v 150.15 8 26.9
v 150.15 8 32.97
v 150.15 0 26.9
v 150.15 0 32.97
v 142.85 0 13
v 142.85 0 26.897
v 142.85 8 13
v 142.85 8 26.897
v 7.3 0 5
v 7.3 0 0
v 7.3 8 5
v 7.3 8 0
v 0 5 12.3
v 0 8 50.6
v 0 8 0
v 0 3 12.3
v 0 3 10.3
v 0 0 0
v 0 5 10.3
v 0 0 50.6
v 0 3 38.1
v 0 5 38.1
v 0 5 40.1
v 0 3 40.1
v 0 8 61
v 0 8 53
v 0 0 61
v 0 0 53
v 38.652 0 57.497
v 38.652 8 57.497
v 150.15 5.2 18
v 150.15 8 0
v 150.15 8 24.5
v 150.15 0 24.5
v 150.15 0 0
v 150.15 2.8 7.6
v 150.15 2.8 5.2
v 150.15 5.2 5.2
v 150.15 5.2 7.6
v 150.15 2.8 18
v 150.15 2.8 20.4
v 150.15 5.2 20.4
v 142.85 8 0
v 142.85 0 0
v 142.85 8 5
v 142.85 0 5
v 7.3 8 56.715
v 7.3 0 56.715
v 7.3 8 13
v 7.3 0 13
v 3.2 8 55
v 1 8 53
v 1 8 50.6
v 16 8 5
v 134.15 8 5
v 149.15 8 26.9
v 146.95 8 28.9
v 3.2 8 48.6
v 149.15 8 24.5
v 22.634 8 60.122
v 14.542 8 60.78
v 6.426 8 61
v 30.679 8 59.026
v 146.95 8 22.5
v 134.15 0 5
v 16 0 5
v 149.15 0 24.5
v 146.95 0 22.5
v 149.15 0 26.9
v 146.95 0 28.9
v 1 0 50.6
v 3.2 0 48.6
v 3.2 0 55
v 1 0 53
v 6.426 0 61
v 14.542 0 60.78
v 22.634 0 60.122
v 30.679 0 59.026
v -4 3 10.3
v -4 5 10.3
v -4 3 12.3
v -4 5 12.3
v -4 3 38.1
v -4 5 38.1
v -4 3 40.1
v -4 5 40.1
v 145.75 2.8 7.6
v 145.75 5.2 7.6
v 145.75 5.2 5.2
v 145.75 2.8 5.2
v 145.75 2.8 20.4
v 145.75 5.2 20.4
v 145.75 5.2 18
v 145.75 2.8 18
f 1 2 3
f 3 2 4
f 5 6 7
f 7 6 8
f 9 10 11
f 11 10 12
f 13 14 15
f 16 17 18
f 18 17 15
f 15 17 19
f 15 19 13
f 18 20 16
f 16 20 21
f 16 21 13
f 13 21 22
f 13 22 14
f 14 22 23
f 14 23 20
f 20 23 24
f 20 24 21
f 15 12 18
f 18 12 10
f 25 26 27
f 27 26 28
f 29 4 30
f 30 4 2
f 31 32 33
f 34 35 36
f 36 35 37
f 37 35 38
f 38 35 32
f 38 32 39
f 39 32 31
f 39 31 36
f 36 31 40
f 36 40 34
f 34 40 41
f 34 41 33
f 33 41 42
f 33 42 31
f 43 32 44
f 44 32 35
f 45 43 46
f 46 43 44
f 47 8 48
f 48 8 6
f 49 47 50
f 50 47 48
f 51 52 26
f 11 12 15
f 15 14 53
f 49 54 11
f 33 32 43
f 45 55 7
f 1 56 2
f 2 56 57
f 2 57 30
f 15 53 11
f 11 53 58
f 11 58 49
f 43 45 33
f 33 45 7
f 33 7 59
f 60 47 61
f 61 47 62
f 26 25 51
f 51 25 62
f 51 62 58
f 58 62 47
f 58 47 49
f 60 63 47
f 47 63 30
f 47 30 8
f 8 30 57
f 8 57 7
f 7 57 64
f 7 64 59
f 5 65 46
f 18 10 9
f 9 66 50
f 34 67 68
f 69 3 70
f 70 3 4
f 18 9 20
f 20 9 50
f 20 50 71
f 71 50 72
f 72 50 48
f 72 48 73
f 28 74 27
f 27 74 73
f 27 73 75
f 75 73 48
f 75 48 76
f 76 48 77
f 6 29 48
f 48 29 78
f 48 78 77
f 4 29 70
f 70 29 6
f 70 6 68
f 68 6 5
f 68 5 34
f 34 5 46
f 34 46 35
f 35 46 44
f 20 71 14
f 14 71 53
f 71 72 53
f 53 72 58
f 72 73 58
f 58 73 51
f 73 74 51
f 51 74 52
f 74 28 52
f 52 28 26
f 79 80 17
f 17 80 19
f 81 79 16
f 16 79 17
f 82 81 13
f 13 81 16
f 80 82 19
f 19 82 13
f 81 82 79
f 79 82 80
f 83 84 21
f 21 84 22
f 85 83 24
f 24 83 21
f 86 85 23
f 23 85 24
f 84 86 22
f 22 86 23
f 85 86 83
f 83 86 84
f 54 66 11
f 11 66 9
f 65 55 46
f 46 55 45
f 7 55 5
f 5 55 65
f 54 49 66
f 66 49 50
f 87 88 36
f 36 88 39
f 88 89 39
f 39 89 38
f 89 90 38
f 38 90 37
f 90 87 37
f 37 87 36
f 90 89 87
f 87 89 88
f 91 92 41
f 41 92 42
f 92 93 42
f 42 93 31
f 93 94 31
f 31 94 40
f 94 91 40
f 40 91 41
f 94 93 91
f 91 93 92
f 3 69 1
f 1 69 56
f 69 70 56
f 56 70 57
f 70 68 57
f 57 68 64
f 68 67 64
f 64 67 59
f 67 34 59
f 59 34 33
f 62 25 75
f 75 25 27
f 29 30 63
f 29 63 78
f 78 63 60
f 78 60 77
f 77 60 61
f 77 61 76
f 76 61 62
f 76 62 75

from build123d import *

# Parameters (mm, degrees)
P_IDAT_VYSUNUT_M1_DEPTH  = 8
ODEBRAT_VYSUNUT_M1_DEPTH = 165.210299616
SKICA3_W                 = 2
SKICA3_H                 = 2
P_IDAT_VYSUNUT_M2_DEPTH  = 4
SKICA5_W                 = 16
SKICA5_H                 = 8
P_IDAT_VYSUNUT_M3_DEPTH  = 8
ODEBRAT_VYSUNUT_M4_DEPTH = 165.210299616
SKICA4_W                 = 2.4
SKICA4_H                 = 2.4
ODEBRAT_VYSUNUT_M2_DEPTH = 4.4
ODEBRAT_VYSUNUT_M5_DEPTH = 165.210299616
ODEBRAT_VYSUNUT_M6_DEPTH = 165.210299616
ZAOBLIT1_R               = 150


with BuildPart() as part:
    # Skica1 → Přidat vysunutím1 (new body)
    with BuildSketch(Plane(origin=(0, 0, 0), x_dir=(1, 0, 0), z_dir=(0, 1, 0))):
        Polygon((0, 0), (0, -66), (150.15, -32.97), (150.15, 0), (142.85, 0), (142.85, -26.8965309), (7.3, -56.714822608), (7.3, 0), align=None)
    extrude(amount=P_IDAT_VYSUNUT_M1_DEPTH)

    # Skica2 → Odebrat vysunutím1 (cut, through all)
    with BuildSketch(Plane(origin=(0, 8, 0), x_dir=(1, 0, 0), z_dir=(0, 1, 0))):
        Polygon((0, -50.6), (1, -50.6), (3.2, -48.6), (3.2, -55), (1, -53), (0, -53), align=None)
    extrude(amount=-ODEBRAT_VYSUNUT_M1_DEPTH, mode=Mode.SUBTRACT)

    # Skica3 → Přidat vysunutím2 (add)
    with BuildSketch(Plane.ZY):
        with Locations((11.3, 4)):
            Rectangle(SKICA3_W, SKICA3_H)
        with Locations((39.1, 4)):
            Rectangle(SKICA3_W, SKICA3_H)
    extrude(amount=P_IDAT_VYSUNUT_M2_DEPTH)

    # Skica5 → Přidat vysunutím3 (add)
    with BuildSketch(Plane(origin=(0, 8, 0), x_dir=(1, 0, 0), z_dir=(0, 1, 0))):
        with Locations((8, -9)):
            Rectangle(SKICA5_W, SKICA5_H)
        with Locations((142.15, -9)):
            Rectangle(SKICA5_W, SKICA5_H)
    extrude(amount=-P_IDAT_VYSUNUT_M3_DEPTH)

    # Skica7 → Odebrat vysunutím4 (cut, through all)
    with BuildSketch(Plane.XZ):
        Polygon((7.3, 13), (16, 5), (16, 13), align=None)
        Polygon((134.15, 5), (134.15, 13), (142.85, 13), align=None)
    extrude(amount=-ODEBRAT_VYSUNUT_M4_DEPTH, mode=Mode.SUBTRACT)

    # Skica4 → Odebrat vysunutím2 (cut)
    with BuildSketch(Plane(origin=(150.15, 0, 0), x_dir=(0, 0, -1), z_dir=(1, 0, 0))):
        with Locations((-19.2, 4)):
            Rectangle(SKICA4_W, SKICA4_H)
        with Locations((-6.4, 4)):
            Rectangle(SKICA4_W, SKICA4_H)
    extrude(amount=-ODEBRAT_VYSUNUT_M2_DEPTH, mode=Mode.SUBTRACT)

    # Skica8 → Odebrat vysunutím5 (cut, through all)
    with BuildSketch(Plane(origin=(0, 8, 0), x_dir=(1, 0, 0), z_dir=(0, 1, 0))):
        Polygon((150.15, -24.5), (149.15, -24.5), (146.95, -22.5), (146.95, -28.9), (149.15, -26.9), (150.15, -26.9), align=None)
    extrude(amount=-ODEBRAT_VYSUNUT_M5_DEPTH, mode=Mode.SUBTRACT)

    # Skica9 → Odebrat vysunutím6 (cut, through all)
    with BuildSketch(Plane(origin=(0, 8, 0), x_dir=(1, 0, 0), z_dir=(0, 1, 0))):
        Polygon((0, -61), (22.729336966, -61), (0, -66), align=None)
    extrude(amount=-ODEBRAT_VYSUNUT_M6_DEPTH, mode=Mode.SUBTRACT)

    # Zaoblit1
    zaoblit1_edges = [part.edges().sort_by_distance(p)[0] for p in [
        (22.729336966, 4, 61),
    ]]
    fillet(zaoblit1_edges, radius=ZAOBLIT1_R)


solid = part.part
